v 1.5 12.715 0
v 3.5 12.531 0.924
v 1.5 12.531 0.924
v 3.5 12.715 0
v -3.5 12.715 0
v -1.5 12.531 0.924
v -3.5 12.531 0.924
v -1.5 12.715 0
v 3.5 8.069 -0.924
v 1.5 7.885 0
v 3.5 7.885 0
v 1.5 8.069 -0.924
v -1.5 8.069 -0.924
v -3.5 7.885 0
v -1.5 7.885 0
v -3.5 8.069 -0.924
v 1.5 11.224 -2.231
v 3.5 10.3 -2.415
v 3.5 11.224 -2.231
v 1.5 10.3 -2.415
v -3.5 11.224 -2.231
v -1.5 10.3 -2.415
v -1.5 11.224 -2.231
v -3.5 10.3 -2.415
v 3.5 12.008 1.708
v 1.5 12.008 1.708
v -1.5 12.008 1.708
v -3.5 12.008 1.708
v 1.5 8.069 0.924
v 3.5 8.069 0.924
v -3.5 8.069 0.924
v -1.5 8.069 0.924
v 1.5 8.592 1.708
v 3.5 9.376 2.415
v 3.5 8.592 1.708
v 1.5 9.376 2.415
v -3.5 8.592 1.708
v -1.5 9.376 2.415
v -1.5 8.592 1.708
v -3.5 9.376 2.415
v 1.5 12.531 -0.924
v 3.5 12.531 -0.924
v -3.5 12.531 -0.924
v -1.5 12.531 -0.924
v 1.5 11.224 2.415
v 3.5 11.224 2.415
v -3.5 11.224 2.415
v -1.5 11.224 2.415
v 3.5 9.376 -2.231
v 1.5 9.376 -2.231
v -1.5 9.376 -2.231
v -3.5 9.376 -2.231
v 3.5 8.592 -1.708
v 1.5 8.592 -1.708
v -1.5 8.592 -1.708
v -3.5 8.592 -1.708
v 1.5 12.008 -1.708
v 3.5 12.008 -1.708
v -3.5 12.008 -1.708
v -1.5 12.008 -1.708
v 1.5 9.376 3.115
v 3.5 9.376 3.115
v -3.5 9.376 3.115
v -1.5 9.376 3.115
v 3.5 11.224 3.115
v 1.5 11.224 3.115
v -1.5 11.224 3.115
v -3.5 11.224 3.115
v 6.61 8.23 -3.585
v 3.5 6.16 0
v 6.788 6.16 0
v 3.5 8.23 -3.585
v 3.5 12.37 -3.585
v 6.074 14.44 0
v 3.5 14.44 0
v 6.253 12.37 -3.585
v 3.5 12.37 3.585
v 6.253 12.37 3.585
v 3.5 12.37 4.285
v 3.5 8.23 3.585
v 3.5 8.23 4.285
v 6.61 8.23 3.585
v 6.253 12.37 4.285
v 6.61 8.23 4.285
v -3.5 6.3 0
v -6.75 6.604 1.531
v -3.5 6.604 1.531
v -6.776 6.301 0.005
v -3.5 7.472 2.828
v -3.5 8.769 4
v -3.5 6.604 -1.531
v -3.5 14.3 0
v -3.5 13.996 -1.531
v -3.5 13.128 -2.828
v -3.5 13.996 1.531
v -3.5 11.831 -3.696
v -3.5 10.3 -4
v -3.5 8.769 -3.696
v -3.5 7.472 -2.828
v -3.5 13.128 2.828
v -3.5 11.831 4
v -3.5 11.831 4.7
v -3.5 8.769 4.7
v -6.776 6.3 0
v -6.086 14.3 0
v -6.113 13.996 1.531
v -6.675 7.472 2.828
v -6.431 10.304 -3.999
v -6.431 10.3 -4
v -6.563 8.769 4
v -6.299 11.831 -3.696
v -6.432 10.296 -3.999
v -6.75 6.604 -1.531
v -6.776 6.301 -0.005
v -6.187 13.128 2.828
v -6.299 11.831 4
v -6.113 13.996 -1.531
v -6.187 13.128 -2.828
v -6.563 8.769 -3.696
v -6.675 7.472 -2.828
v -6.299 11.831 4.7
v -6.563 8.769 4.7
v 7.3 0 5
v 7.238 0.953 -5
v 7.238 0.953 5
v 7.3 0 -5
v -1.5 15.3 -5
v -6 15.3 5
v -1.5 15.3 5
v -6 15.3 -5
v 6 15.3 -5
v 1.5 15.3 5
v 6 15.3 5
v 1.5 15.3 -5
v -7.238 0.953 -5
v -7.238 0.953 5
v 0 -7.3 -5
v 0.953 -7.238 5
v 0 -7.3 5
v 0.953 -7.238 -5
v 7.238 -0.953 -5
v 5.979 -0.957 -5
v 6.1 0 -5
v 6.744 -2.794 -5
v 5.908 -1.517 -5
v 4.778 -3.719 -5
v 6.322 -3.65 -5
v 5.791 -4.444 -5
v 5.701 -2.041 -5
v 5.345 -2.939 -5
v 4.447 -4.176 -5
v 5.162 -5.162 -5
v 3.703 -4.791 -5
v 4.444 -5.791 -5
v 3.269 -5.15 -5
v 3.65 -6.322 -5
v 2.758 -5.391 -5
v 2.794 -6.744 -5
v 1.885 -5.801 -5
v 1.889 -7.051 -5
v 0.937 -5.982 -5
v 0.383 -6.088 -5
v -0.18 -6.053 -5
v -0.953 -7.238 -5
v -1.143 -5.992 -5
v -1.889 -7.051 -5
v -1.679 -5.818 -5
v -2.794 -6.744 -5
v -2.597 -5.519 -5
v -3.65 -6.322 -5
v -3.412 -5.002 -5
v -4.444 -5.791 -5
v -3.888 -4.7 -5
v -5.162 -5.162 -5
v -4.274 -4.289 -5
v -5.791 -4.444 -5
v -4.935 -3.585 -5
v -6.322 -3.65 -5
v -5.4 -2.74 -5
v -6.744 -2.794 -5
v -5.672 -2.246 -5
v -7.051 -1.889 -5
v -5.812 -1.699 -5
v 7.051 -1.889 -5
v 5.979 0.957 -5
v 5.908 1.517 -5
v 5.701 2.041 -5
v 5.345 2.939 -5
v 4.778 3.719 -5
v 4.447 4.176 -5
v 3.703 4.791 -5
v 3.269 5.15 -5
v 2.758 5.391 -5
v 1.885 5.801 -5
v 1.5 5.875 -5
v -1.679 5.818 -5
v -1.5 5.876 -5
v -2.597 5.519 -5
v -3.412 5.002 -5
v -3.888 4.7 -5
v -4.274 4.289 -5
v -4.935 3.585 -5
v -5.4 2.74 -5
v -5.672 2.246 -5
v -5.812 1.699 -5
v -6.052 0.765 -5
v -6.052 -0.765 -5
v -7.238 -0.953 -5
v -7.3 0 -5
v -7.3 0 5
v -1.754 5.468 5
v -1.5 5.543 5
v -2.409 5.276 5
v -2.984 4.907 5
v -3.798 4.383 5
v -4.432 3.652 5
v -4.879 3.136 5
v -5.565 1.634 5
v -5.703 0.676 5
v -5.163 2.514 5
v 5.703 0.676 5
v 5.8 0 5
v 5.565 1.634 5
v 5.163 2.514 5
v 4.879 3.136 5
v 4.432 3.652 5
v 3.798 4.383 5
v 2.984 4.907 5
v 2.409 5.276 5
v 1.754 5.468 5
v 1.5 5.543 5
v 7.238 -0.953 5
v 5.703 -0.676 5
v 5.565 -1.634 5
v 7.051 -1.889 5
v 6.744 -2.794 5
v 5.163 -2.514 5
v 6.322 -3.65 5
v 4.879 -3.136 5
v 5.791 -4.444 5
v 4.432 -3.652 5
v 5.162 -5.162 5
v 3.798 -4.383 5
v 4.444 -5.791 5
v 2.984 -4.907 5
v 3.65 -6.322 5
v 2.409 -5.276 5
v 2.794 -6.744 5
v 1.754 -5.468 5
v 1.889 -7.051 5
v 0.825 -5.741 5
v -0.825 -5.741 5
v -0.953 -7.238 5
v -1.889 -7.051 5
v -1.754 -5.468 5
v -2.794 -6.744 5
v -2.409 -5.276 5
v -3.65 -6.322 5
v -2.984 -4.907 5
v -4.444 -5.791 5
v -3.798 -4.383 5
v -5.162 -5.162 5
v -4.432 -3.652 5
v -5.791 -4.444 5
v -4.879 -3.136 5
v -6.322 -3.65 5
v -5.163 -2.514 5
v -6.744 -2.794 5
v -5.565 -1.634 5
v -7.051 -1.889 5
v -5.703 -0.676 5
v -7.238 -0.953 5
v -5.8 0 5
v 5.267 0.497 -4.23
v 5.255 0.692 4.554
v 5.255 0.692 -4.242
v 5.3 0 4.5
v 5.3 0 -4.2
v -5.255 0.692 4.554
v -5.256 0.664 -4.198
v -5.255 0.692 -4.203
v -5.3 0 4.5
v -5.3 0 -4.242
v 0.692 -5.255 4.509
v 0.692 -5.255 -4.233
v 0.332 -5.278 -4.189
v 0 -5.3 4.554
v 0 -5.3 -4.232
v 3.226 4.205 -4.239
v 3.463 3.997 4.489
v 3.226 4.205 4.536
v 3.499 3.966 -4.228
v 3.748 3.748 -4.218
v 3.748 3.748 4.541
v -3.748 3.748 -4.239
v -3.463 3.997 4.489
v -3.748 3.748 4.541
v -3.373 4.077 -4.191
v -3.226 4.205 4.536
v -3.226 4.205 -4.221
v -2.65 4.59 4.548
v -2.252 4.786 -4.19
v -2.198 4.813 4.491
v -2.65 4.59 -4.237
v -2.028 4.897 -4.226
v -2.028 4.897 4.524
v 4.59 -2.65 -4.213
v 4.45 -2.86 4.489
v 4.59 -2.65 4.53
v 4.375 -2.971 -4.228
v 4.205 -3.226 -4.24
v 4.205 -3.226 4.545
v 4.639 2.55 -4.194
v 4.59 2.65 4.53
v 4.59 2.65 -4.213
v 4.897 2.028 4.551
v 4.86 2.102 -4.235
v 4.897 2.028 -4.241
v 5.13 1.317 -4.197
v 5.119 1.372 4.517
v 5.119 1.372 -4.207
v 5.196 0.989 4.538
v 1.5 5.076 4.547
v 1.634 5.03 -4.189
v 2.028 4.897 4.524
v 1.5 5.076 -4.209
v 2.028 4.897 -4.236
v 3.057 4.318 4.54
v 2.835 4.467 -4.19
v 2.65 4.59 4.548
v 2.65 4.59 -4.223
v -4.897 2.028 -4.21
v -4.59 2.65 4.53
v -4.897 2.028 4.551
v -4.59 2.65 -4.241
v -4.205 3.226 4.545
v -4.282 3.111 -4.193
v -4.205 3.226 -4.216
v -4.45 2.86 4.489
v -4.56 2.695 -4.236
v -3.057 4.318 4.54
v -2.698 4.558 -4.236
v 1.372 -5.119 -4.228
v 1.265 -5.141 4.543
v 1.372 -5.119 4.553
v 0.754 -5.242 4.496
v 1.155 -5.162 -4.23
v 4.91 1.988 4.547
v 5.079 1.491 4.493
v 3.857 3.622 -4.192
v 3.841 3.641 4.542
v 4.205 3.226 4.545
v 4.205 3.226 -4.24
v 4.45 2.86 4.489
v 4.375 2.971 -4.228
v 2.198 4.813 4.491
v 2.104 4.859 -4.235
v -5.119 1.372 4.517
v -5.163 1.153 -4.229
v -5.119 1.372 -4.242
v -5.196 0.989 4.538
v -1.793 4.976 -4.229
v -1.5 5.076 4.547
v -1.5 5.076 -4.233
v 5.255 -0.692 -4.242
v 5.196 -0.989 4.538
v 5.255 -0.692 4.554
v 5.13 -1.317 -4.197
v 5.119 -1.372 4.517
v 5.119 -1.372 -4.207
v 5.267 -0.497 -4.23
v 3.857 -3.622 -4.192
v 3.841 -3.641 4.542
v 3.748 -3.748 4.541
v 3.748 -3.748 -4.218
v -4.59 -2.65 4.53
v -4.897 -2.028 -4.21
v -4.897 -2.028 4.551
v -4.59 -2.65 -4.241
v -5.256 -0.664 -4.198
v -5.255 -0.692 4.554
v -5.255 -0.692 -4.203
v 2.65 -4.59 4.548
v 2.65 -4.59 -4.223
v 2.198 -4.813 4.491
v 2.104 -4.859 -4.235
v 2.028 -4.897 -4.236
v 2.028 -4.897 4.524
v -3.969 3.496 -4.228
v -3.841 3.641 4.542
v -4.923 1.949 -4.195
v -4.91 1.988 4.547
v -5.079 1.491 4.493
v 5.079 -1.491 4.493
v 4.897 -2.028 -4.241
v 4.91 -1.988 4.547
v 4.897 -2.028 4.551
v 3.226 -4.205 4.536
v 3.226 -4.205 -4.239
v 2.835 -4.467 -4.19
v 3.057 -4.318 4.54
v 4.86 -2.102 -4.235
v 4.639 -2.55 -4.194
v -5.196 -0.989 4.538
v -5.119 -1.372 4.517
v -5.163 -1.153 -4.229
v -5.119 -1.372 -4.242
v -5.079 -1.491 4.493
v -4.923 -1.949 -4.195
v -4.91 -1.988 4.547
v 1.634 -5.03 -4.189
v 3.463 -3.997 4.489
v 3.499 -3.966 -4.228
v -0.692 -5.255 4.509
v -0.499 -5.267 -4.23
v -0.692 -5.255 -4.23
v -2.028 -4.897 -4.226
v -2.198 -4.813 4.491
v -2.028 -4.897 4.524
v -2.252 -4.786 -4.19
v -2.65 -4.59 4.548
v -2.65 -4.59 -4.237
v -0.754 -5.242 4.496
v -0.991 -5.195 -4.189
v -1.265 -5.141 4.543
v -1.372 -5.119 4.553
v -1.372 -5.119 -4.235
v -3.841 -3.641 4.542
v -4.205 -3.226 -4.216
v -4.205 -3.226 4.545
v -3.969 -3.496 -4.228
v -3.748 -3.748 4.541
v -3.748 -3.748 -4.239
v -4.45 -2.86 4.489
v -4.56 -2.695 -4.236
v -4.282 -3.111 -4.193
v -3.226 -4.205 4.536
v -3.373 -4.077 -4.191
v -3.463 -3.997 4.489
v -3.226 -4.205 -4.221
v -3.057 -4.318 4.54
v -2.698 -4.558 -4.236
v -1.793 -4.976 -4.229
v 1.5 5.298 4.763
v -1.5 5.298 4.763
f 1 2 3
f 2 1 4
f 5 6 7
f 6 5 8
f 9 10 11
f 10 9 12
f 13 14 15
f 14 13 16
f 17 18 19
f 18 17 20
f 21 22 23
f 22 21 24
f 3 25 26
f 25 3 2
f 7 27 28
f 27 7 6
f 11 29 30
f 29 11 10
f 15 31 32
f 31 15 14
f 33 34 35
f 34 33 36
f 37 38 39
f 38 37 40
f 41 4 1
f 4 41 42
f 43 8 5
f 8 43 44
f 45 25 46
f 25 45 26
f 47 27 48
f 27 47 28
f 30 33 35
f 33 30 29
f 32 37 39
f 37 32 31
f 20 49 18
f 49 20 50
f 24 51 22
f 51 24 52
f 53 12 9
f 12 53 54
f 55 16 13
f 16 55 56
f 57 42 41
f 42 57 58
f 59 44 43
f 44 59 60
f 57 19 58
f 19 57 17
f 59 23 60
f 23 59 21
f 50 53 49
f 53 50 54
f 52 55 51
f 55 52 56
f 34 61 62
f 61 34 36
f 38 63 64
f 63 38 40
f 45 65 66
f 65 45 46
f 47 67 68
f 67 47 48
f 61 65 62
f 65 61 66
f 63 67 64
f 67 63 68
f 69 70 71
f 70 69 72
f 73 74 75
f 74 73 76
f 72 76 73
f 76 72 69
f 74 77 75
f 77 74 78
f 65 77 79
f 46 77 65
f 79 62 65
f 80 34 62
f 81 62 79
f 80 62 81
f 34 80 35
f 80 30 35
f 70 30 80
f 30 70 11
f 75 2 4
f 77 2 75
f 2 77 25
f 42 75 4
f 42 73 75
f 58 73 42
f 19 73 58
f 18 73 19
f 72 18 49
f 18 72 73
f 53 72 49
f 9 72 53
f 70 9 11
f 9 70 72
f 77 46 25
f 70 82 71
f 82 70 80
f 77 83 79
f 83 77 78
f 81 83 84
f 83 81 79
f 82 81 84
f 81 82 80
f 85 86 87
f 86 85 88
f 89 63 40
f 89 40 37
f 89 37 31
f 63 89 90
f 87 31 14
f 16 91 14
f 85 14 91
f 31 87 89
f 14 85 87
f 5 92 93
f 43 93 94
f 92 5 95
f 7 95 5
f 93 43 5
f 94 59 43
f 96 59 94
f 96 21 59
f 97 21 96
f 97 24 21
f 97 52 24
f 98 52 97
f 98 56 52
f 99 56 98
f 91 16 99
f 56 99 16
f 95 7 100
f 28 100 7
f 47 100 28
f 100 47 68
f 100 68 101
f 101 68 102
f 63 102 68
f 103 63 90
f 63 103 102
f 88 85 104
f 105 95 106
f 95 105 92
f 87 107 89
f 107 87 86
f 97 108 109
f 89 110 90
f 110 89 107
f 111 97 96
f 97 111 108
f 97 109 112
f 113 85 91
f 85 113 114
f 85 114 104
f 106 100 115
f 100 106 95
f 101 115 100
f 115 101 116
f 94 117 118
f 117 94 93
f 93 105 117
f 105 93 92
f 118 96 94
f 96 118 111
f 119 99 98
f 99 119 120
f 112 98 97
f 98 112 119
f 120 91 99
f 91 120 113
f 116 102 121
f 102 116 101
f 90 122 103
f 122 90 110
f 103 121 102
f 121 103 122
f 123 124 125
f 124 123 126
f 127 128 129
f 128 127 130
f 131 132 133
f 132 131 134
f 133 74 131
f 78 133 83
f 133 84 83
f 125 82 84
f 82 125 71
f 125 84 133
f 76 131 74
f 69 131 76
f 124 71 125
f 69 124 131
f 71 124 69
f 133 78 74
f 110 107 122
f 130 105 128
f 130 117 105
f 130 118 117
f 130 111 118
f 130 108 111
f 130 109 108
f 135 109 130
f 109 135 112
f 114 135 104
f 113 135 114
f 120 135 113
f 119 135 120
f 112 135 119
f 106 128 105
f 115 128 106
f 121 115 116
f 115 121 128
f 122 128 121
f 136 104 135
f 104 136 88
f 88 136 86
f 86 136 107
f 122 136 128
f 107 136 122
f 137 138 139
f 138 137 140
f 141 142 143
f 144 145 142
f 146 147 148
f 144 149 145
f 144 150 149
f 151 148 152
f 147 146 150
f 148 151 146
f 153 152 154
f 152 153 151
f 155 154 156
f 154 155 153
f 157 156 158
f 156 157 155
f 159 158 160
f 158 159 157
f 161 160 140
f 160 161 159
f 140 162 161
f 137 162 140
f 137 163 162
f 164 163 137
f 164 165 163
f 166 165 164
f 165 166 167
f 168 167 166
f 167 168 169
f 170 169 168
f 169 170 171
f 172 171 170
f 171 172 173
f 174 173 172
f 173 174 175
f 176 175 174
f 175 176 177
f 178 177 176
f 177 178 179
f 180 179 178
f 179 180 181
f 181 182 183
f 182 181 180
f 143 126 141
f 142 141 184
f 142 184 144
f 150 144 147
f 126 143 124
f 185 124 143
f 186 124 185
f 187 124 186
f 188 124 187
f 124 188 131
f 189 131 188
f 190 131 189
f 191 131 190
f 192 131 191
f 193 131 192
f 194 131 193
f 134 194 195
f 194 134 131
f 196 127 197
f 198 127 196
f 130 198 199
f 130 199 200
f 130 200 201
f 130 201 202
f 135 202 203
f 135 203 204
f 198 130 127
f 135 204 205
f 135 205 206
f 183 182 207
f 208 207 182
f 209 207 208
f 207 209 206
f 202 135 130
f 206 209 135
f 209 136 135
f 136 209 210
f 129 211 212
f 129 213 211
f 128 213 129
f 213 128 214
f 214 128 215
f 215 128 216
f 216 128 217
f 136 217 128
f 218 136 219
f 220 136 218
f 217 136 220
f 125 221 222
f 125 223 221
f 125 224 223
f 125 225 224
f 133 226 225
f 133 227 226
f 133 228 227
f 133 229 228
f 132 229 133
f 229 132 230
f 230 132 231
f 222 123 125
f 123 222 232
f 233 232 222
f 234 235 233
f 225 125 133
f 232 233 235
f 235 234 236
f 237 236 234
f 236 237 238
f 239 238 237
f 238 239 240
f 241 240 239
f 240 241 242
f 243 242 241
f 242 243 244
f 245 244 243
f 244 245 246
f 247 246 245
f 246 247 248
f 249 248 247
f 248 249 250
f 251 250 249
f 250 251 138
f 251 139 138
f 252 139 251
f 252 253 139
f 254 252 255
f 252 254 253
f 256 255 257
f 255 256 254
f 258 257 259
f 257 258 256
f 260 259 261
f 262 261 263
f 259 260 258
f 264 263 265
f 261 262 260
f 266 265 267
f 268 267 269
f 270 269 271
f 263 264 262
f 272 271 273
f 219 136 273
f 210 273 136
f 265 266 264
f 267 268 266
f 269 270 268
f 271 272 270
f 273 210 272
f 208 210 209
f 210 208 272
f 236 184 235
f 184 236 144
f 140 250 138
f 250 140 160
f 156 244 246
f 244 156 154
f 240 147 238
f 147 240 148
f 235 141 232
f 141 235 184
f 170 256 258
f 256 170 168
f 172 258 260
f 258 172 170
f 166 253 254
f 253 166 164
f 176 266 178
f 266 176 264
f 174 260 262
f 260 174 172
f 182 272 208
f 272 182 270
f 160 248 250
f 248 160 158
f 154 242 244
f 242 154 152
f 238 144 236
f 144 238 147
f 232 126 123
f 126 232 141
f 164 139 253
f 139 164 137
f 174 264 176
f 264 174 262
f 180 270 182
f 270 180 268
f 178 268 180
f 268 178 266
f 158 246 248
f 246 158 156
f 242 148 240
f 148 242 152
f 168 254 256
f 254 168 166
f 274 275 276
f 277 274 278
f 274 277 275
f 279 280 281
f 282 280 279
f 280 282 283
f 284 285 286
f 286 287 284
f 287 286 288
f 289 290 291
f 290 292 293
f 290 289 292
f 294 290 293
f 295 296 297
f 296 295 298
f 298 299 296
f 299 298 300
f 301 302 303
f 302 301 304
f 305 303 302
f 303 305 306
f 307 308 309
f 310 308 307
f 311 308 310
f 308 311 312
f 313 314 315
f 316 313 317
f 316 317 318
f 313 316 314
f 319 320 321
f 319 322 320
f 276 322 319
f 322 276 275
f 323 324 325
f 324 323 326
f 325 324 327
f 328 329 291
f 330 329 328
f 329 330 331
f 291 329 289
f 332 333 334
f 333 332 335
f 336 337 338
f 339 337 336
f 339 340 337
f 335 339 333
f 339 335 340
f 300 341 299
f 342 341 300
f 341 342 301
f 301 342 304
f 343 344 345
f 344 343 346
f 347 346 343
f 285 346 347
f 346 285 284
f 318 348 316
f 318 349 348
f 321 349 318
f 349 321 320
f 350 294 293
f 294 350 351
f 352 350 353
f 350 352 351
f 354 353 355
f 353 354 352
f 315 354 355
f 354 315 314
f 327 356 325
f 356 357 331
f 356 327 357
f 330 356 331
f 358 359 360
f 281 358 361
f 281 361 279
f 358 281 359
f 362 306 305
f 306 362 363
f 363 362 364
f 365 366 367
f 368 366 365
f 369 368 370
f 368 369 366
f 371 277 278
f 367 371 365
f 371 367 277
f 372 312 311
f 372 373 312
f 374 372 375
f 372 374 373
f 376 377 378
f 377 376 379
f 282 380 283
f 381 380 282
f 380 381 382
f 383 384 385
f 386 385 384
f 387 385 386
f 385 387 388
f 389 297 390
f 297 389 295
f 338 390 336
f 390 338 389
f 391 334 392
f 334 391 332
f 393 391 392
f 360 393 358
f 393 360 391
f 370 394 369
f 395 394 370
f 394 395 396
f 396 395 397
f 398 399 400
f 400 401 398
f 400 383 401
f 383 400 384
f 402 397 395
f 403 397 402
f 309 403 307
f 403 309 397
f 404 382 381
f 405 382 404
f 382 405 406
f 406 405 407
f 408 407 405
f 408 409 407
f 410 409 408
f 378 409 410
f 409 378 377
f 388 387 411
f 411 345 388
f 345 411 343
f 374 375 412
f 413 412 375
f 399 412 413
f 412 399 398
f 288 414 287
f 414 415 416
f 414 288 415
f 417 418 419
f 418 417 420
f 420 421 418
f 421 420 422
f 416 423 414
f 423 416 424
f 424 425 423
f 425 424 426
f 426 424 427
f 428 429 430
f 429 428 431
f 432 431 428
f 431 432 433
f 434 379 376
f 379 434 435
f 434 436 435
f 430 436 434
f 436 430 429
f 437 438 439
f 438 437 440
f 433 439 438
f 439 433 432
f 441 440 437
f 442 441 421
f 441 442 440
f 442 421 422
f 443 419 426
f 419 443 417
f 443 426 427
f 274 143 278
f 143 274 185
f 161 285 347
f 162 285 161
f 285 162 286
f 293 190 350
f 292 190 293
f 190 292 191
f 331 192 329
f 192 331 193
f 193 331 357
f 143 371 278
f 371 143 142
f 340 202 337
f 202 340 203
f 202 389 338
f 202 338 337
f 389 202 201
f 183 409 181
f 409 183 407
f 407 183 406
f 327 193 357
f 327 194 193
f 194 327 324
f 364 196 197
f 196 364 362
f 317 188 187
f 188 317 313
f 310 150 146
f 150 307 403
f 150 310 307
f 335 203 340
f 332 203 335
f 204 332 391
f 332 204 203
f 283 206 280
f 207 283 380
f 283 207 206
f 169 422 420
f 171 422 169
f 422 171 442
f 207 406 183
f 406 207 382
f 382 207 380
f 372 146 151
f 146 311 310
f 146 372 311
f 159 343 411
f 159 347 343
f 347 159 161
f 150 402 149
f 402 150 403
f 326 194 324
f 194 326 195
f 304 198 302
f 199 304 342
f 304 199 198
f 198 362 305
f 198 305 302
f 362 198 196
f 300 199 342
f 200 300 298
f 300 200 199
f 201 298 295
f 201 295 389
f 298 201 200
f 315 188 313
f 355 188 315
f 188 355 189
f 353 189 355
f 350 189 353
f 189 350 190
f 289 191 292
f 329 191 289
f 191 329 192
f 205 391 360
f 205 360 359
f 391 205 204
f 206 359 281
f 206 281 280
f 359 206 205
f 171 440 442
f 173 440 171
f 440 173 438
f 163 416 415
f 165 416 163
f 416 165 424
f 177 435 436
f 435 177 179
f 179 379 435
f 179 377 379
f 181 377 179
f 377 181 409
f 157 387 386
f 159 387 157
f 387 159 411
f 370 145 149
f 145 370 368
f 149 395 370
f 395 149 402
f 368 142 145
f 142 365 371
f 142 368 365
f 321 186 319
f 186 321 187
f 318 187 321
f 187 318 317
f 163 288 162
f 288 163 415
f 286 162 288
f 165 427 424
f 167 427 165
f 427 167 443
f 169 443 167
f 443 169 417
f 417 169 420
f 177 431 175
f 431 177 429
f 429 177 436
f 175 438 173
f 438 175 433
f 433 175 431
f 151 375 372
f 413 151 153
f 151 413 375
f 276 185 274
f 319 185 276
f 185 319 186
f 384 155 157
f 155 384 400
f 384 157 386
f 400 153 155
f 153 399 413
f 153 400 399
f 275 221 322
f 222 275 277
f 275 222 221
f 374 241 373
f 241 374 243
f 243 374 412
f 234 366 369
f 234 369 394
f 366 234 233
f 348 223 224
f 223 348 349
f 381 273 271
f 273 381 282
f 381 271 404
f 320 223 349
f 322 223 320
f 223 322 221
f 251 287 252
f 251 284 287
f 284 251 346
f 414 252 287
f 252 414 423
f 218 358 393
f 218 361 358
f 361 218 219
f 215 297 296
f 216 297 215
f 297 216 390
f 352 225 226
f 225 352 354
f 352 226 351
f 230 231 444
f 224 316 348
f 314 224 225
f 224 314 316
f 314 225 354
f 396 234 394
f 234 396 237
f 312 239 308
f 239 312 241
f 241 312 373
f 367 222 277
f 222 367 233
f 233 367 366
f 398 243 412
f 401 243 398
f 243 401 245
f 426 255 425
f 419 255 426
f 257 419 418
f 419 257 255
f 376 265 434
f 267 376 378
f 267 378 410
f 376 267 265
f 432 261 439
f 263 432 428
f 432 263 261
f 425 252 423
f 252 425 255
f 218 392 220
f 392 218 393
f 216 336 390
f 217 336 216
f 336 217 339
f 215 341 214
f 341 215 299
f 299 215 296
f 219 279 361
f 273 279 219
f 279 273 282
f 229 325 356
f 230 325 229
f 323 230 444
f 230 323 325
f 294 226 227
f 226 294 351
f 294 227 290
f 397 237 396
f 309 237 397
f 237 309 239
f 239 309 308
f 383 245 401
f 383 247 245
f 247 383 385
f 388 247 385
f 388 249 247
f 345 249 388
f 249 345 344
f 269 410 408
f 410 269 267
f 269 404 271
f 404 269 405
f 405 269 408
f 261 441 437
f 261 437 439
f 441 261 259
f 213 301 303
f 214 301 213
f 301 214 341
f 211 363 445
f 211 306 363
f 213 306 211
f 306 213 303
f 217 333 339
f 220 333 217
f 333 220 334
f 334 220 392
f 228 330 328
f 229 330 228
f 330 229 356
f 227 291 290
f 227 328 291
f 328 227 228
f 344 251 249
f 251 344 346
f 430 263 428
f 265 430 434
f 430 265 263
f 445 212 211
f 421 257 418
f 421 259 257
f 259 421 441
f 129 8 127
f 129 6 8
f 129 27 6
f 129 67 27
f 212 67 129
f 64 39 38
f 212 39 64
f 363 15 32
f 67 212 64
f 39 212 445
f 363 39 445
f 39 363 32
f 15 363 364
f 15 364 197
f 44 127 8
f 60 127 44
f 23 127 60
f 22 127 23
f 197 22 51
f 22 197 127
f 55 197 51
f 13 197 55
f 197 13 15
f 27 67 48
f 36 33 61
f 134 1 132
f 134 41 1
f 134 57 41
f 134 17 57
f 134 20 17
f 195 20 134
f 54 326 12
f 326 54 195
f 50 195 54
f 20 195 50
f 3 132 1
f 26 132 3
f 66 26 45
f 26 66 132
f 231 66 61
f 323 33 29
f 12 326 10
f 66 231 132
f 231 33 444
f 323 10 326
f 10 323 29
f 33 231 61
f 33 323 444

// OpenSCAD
// file: ../standard_optomechanics/cylinder_clamp.scad
use <../utilities.scad>;
d=0.05;

//for 1 inch/25mm post clamp, an inner radius of 12.8 is good.
	
module cylinder_clamp(
	inner_r=12.8, //radius of the cylinder being clamped (ish!)
	clamp_h=11, //thicknedess of the clamp along the cylinder axis
	clamp_t=4, //thickness of the clamp radially
	flat_t=8, //how thick the bottom of the clamp is (often need to allow for the mounting bolt head here)
	flat_width=15, //width of the flat base
	mounting_bolt=4, //nominal size of mounting bolt (default is 4 for M4, 0 to disable)
	nut_trap=false,
	bevel_top=0.5, //size of 45 degree bevel on top surface
	bevel_bottom=0.8 //size of 45 degree bevel on bottom of hole
	){
	assign(
		post_r = inner_r, //poor initial choice of name!
		bolt_flat_w=10, //width of the region where the bolt is
		gap_w=3 //size of the gap that is squeezed by the bolt
	)
	difference(){
		hull(){
			cylinder(h=clamp_h,r=post_r+clamp_t,center=true,$fn=48);
			translate([0,-post_r-flat_t/2,0]) cube([flat_width,flat_t,clamp_h],center=true);
			translate([0,post_r+bolt_flat_w/2,0]) cube([12,bolt_flat_w,clamp_h],center=true);
		}
	
		cylinder(h=9999,r=post_r,center=true,$fn=48); //cylinder being clamped
		//bevels, top and bottom
		translate([0,0,-clamp_h/2]) cylinder(r1=post_r+3*bevel_bottom,r2=post_r-bevel_bottom,h=4*bevel_bottom,center=true);
		translate([0,0,clamp_h/2]) cylinder(r2=post_r+3*bevel_top,r1=post_r-bevel_top,h=4*bevel_top,center=true);
		//gap (squeezed by bolt)
		translate([0,999,0]) cube([gap_w,999*2,999],center=true); //gap
	
		//clamping bolt
		translate([gap_w/2+2,post_r+bolt_flat_w/2,0]) rotate([0,0,-90]) nut_y(4,h=999,shaft=true);
		translate([-gap_w/2-2,post_r+bolt_flat_w/2,0]) rotate([0,0,90]) cylinder_with_45deg_top(r=4,h=999,$fn=16); //counterbore for nut head
	
		if(mounting_bolt > 0){
			//mounting bolt
			translate([0,-post_r-4.5,0]) rotate([-90,0,0]){
				intersection(){
					rotate([90,0,0])
						if(nut_trap){
							nut_y(mounting_bolt,fudge=1.15,shaft=true,h=999);
						}else{
							screw_y(mounting_bolt,fudge=1.07,shaft=true,h=999);
						}
					cube([inner_r*2,inner_r*2,clamp_h*2],center=true);
				}
			}
		}
		//in the case of thick clamps with thin flats, this keeps the bottom flat
		translate([0,-inner_r-flat_t-999,0]) cube([9999,999*2,9999],center=true);
	}
}

module cylinder_clamp_v(
	inner_r=12.8, //radius of the cylinder being clamped (ish!)
	clamp_h=10, //width of the clamp along the cylinder (y) axis
	clamp_t=4, //thickness of the clamp radially
	flat_t=8, //how thick the bottom of the clamp is (often need to allow for the mounting bolt head here)
	flat_width=15, //width of the flat base
	mounting_bolt=4, //nominal size of mounting bolt (default is 4 for M4, 0 to disable)
	bevel=0.5 //put a 45 degree bevel on the edges of the hole
	){
	assign(
		post_r = inner_r, //poor initial choice of name!
		bolt_flat_w=11, //width of the region where the bolt is
		gap_w=2*inner_r*sin(45/2),//sin(acos(1-(9/2-4/2*1.22)/inner_r))*inner_r //size of the gap that is squeezed by the bolt
		bolt_z = inner_r+4/2*1.22+d //position of bolt (so bolt just clears the cylinder we're clamping
	)assign( //the second assign statement allows us to use gap_w
		bolt_span=gap_w+4+d//max(2*inner_r*sin(acos(1-(9/2-4/2*1.22)/inner_r)), gap_w+4)
	)
	difference(){
		hull(){
			rotate([90,0,0]) cylinder(h=clamp_h,r=inner_r+clamp_t,center=true,$fn=48);
			translate([0,0,-inner_r-flat_t/2]) cube([flat_width,clamp_h,flat_t],center=true);
			translate([0,0,bolt_z]) cube([gap_w+9,clamp_h,bolt_flat_w],center=true);
		}
	
		cylinder_with_45deg_top(h=9999,r=post_r,center=true,$fn=48); //cylinder being clamped
		reflect([0,1,0]) translate([0,clamp_h/2,0]) rotate([90,0,0]) cylinder(r1=post_r+3*bevel,r2=post_r-bevel,h=4*bevel,center=true); //bevel
		translate([0,0,999]) cube([gap_w,999,999*2],center=true); //gap
	
		//clamping bolt
		translate([bolt_span/2,0,bolt_z]) rotate([0,0,-90]) nut_y(4,h=999,shaft=true);
		translate([-bolt_span/2,0,bolt_z]) rotate([0,0,90]) cylinder_with_45deg_top(r=4,h=999,$fn=16); //counterbore for nut head
	
		if(mounting_bolt > 0){
			//mounting bolt
			translate([0,0,-post_r-4.5]){
				cylinder(r=mounting_bolt*1.1,h=post_r,$fn=16);
				cylinder(r=mounting_bolt/2*1.22,h=flat_t*2,center=true,$fn=16);
			}
		}
		translate([0,0,-inner_r-flat_t-999]) cube([9999,9999,999*2],center=true);
	}
}

translate([0,30,0]) cylinder_clamp_v(30.5/2, 10, flat_width=24, mounting_bolt=4, flat_t=8);

cylinder_clamp(30.5/2, flat_width=24, mounting_bolt=4, flat_t=8,nut_trap=true);
// main file
use <../utilities.scad>;
use <../standard_optomechanics/cylinder_clamp.scad>;

rack_r = 10/2+0.3;
cylinder_clamp(
    inner_r=rack_r, //radius of the cylinder being clamped (ish!)
	clamp_h=10, //thicknedess of the clamp along the cylinder axis
	clamp_t=2, //thickness of the clamp radially
	flat_t=2, //how thick the bottom of the clamp is (often need to allow for the mounting bolt head here)
	flat_width=0, //width of the flat base
	mounting_bolt=0, //nominal size of mounting bolt (default is 4 for M4, 0 to disable)
	nut_trap=false
	);
